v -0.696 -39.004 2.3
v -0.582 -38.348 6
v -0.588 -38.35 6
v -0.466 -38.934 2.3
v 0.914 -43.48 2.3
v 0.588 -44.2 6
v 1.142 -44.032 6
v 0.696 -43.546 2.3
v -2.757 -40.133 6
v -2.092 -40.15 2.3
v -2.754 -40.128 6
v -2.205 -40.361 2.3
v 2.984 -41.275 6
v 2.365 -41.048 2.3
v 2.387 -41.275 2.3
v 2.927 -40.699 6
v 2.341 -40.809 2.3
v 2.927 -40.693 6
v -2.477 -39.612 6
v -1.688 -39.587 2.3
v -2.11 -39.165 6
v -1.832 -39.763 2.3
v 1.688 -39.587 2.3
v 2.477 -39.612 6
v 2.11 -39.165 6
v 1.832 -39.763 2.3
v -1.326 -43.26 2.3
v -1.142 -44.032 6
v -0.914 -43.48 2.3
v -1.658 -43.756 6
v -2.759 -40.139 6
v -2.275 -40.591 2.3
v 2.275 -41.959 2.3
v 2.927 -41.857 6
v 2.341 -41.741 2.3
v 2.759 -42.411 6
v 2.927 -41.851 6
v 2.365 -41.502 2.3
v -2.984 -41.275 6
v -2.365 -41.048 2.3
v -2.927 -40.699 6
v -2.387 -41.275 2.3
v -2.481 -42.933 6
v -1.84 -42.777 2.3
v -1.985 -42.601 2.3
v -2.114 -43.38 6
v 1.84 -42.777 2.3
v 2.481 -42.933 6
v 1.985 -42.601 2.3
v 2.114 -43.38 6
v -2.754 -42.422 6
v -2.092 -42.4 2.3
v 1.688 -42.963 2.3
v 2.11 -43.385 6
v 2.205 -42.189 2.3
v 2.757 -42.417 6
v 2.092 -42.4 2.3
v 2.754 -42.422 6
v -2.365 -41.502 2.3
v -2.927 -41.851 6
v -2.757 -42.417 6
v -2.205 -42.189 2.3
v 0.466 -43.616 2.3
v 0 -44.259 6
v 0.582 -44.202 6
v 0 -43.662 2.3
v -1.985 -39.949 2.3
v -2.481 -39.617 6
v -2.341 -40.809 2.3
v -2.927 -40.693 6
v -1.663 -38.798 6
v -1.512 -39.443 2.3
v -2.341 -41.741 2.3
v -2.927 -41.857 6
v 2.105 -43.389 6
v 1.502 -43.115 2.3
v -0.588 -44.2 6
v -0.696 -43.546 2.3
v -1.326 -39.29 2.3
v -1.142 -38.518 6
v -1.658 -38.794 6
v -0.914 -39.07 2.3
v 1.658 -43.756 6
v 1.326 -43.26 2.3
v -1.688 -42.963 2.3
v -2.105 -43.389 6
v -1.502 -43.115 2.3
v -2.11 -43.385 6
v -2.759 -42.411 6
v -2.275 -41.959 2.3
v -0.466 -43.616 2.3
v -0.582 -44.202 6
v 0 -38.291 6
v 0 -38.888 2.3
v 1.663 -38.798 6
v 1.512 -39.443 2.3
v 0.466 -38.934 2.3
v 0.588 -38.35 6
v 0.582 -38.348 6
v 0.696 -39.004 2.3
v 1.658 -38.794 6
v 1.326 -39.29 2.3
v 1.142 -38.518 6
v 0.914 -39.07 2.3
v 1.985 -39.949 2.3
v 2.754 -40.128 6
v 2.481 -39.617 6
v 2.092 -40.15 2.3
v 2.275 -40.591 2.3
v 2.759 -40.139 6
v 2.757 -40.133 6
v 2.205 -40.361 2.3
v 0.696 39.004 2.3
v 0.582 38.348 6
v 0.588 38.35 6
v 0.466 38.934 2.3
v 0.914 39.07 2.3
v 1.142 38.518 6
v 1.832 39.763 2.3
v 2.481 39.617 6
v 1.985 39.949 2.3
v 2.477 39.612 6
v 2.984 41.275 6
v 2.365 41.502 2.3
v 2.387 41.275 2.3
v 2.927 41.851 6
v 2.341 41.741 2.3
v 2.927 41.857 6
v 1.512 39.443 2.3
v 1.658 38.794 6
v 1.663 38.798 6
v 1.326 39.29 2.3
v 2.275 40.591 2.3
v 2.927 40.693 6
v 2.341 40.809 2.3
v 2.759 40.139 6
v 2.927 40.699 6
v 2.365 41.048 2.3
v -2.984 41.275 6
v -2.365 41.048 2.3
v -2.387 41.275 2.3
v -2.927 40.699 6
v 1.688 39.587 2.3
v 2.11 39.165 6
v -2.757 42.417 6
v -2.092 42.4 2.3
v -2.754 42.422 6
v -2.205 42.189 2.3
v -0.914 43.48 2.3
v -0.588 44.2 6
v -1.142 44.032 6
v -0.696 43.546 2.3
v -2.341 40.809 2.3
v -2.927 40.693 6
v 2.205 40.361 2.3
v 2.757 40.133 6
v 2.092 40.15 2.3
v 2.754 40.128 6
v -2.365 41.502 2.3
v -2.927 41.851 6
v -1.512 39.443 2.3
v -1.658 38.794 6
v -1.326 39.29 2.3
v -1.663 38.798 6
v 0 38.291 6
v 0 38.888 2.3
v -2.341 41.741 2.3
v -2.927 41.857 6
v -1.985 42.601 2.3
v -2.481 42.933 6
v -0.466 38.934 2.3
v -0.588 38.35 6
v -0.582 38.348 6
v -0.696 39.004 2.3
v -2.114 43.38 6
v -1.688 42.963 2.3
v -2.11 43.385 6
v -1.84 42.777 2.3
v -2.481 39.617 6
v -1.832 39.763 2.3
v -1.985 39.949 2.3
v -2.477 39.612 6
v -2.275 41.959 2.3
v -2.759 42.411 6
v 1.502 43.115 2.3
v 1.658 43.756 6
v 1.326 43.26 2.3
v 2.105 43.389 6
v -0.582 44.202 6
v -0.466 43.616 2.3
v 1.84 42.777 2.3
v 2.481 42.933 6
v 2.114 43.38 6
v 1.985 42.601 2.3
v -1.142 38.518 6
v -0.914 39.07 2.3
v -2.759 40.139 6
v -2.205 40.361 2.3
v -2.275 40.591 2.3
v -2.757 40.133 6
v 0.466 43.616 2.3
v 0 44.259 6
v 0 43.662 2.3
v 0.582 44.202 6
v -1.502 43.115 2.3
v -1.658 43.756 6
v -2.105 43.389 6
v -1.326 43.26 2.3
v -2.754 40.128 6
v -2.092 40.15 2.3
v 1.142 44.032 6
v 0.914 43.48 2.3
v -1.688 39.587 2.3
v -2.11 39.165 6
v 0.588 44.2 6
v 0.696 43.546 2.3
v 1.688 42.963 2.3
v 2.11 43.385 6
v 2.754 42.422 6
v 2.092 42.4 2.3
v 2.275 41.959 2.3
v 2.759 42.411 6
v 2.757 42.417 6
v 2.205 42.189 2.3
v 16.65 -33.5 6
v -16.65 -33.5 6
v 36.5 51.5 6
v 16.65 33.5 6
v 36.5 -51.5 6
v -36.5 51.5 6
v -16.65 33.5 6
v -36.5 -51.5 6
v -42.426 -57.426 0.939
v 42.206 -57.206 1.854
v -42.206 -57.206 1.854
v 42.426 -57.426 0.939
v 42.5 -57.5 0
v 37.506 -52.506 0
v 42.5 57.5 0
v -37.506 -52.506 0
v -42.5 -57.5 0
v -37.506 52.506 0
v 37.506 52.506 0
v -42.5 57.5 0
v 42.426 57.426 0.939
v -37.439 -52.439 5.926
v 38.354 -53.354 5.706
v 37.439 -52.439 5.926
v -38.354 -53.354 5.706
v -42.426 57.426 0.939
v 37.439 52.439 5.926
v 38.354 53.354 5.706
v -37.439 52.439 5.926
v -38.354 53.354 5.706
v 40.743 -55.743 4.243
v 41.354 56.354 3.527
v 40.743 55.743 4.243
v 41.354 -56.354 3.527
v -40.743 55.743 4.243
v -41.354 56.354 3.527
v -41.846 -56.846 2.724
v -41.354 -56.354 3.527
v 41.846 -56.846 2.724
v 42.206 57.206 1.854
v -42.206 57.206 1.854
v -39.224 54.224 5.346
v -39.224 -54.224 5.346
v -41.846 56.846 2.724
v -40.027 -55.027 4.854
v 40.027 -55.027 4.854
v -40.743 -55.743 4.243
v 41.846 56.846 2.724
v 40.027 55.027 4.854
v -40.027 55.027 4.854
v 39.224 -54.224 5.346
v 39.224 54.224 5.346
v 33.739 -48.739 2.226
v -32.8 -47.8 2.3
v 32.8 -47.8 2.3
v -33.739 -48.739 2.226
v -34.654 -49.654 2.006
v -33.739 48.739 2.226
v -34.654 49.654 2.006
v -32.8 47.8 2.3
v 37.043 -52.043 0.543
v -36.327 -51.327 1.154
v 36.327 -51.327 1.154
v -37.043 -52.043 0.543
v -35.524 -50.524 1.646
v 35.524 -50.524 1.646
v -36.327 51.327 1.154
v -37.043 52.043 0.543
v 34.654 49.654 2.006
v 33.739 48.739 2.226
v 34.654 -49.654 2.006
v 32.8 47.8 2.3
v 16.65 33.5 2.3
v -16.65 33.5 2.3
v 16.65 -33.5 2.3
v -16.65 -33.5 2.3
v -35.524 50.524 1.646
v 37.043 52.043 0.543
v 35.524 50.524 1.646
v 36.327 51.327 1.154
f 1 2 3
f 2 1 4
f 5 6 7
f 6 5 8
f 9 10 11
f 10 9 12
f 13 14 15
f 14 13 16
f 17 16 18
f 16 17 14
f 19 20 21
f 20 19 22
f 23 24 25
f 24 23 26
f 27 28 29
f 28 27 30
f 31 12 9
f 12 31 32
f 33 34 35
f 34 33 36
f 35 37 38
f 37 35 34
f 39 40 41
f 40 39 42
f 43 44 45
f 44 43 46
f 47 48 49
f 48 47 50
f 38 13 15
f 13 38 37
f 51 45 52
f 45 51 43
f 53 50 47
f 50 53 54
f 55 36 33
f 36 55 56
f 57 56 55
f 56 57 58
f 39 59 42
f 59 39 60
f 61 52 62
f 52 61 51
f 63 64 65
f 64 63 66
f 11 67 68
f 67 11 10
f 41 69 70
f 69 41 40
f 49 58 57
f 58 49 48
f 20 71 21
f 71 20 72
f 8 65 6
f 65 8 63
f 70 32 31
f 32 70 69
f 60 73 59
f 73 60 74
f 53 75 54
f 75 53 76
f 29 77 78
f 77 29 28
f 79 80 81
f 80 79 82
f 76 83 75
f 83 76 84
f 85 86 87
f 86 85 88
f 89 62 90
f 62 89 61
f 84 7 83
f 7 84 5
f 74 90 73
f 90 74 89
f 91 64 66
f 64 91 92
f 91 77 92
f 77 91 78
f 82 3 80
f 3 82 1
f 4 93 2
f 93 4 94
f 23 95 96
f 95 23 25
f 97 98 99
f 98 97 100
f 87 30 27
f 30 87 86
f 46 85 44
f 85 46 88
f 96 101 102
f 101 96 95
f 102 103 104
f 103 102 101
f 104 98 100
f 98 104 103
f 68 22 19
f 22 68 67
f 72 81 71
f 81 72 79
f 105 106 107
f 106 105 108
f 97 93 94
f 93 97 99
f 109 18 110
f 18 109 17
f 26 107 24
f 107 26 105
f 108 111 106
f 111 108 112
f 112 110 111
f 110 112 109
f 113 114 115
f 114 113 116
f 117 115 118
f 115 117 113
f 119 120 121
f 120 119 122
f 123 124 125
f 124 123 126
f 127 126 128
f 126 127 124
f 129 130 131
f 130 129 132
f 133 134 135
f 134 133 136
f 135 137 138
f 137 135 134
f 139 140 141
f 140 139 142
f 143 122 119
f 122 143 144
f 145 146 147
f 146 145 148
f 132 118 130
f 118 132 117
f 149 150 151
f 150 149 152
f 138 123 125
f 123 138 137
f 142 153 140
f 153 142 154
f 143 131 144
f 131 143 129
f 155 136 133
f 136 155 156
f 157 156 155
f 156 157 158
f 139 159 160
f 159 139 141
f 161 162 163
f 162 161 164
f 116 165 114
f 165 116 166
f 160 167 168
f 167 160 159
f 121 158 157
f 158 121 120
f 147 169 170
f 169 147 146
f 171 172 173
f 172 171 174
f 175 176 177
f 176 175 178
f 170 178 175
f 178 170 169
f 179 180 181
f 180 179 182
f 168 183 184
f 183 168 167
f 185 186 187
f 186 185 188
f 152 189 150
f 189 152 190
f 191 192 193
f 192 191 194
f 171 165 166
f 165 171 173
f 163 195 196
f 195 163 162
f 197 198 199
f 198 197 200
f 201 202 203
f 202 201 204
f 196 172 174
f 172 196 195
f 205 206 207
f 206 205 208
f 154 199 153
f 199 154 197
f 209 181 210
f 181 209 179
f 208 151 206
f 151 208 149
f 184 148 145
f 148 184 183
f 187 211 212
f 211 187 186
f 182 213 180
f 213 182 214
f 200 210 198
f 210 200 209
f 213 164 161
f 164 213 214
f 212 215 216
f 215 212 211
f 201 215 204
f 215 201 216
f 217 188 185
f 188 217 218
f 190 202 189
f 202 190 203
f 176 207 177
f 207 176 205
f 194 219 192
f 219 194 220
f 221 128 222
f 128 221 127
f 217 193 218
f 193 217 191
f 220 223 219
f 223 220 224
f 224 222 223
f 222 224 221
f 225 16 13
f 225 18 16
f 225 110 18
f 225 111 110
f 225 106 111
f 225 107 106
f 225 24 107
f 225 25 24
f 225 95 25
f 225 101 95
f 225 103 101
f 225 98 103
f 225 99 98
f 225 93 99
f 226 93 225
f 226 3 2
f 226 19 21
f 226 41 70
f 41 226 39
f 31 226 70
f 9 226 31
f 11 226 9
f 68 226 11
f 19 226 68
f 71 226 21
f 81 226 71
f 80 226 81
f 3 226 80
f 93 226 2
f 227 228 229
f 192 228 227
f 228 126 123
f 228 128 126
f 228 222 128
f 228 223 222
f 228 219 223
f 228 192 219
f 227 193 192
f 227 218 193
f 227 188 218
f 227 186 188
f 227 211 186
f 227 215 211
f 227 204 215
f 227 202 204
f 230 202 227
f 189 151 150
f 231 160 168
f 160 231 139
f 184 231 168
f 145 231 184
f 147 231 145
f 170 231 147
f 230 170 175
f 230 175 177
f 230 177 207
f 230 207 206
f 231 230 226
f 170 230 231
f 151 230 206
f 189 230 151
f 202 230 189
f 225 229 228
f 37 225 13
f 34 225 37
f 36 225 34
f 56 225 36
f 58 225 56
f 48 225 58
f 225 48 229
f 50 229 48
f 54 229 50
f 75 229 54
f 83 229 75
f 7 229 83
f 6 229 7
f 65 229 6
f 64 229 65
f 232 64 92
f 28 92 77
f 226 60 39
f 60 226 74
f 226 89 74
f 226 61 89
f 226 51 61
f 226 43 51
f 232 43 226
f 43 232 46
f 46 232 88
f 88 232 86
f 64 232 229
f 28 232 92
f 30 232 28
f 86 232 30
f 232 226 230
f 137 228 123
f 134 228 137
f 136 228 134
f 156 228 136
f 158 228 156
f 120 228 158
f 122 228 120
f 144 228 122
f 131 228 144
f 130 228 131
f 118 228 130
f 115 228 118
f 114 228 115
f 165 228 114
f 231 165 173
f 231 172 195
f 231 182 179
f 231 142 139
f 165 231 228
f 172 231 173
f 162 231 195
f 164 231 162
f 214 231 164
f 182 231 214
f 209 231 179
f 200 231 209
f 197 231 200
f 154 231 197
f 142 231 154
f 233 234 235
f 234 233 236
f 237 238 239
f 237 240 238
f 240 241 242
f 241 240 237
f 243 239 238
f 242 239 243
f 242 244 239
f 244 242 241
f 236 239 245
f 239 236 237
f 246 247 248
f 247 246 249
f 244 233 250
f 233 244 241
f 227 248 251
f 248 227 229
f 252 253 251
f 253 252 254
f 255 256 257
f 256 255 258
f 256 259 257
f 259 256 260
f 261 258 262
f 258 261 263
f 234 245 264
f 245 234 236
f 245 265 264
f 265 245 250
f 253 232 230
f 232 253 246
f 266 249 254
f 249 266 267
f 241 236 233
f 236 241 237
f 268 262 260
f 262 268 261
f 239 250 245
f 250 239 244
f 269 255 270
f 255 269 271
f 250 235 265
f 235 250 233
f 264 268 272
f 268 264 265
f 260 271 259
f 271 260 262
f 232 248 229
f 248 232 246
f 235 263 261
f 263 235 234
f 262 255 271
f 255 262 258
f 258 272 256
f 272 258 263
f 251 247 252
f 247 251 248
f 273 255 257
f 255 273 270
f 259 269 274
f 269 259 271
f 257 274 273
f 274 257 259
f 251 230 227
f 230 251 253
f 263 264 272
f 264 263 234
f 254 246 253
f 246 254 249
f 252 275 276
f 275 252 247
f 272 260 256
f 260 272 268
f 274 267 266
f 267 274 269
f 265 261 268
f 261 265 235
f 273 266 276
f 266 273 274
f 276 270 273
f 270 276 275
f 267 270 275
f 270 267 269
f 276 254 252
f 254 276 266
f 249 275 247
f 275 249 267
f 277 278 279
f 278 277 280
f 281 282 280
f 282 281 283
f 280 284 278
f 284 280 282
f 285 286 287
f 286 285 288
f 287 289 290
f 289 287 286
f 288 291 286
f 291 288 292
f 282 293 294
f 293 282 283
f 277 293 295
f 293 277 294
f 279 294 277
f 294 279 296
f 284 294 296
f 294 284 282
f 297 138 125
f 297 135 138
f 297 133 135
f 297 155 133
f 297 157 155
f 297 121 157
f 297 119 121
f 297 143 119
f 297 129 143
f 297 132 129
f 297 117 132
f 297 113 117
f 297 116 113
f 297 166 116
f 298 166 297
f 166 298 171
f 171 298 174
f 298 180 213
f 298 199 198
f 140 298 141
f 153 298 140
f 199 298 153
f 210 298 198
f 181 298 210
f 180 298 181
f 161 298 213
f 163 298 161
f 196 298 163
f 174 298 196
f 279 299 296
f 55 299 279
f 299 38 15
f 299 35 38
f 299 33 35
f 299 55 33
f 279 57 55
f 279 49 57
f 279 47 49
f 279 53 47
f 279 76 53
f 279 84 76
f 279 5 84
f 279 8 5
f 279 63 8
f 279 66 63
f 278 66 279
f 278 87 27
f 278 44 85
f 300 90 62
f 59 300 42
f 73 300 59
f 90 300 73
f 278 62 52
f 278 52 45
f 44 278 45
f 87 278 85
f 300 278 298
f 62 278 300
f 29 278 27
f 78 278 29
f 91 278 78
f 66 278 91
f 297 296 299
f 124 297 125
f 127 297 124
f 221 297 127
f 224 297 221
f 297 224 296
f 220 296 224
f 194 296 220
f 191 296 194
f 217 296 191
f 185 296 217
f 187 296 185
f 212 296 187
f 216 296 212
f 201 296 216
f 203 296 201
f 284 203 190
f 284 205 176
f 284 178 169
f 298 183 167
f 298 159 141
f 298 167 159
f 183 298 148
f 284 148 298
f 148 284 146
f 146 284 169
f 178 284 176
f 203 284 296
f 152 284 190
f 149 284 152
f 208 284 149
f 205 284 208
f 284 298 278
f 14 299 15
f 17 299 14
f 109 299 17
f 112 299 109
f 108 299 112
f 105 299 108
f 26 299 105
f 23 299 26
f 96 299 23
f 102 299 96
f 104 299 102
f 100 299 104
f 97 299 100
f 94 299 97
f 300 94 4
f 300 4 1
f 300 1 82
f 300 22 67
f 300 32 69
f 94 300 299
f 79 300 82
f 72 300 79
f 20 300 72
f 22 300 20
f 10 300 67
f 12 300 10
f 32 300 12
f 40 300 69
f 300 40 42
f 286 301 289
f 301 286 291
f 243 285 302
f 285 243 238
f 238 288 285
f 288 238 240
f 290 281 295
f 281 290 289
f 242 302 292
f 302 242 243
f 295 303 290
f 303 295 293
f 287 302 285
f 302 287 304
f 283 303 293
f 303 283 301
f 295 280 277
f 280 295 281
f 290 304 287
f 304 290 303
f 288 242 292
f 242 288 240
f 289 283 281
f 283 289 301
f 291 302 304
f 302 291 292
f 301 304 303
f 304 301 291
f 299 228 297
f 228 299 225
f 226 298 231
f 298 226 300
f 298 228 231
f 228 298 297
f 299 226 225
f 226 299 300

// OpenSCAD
// file: chamfered-box.scad
function flatten(l) = [ for (a = l) for (b = a) b ];

module chamfered_box(width, height, depth=2, radius=2, steps=5) {
    x0 = width / 2;
    y0 = height / 2;
    d = depth;
    r = radius;
    z0 = d - r;

    tile_points = concat(
        [[-x0, -y0, 0], [x0, -y0, 0], [x0, y0, 0], [-x0, y0, 0]],
        flatten([for (i = [0 : steps])
            let (theta = i * 90 / steps,
                 dx = r * (1 - cos(theta)),
                 dz = r * sin(theta),
                 x = x0 - dx,
                 y = y0 - dx,
                 z = z0 + dz)
            [[-x, -y, z], [x, -y, z], [x, y, z], [-x, y, z]]
        ]));
    last = len(tile_points) - 1;
    tile_faces = concat(
        // Bottom and top faces
        [[0, 1, 2, 3], [last, last - 1, last - 2, last - 3]],
        flatten([for (i = [0 : steps])
            let (base = i * 4)
            [[base, base + 4, base + 5, base + 1],
             [base + 1, base + 5, base + 6, base + 2],
             [base + 2, base + 6, base + 7, base + 3],
             [base + 3, base + 7, base + 4, base]]
        ]));
    polyhedron(points=tile_points, faces=tile_faces);
}

// chamfer_box(10, 20, steps=10);
// main file
// Create a switch plate the same dimensions as the Phast wall-mounted
// controls - to adapt the opening to placing to accomodate the Minoston
// S2 Remote Control Switch (800S) Model - MR40Z (ZW924).
// (the included switch plate is both too narrow and does not have the mounting
// holes in the same position).

use <chamfered-box.scad>

inch = 25.4;

PLATE_WIDTH = 85;
PLATE_HEIGHT = 115;
PLATE_DEPTH = 6;
PLATE_THICKNESS = 3.7;

OPENING_WIDTH = 33.3;
OPENING_HEIGHT = 67;

SCREW_HOLE_CENTERS = 3.25 * inch;
SCREW_HOLE_DIAMETER = 4;
SCREW_HEAD_DIAMETER = 6;

EPSILON = 0.1;

module plate() {
    difference() {
        chamfered_box(PLATE_WIDTH, PLATE_HEIGHT, PLATE_DEPTH, radius=PLATE_DEPTH, steps=10);
        translate([0, 0, -PLATE_THICKNESS])
            chamfered_box(PLATE_WIDTH - 2 * PLATE_THICKNESS, PLATE_HEIGHT - 2 * PLATE_THICKNESS, PLATE_DEPTH, radius=PLATE_DEPTH, steps=10);
        
        // Screw holes with countersink
        for (y = [-SCREW_HOLE_CENTERS/2, SCREW_HOLE_CENTERS/2]) {
            translate([0, y, -EPSILON])
                cylinder(d1=SCREW_HOLE_DIAMETER, d2=SCREW_HEAD_DIAMETER, h=PLATE_DEPTH + 2*EPSILON, $fn=32);
        }
        
        // Center opening
        translate([0, 0, PLATE_DEPTH/2])
            cube([OPENING_WIDTH, OPENING_HEIGHT, PLATE_DEPTH + 2*EPSILON], center=true);
    }
}

plate();
